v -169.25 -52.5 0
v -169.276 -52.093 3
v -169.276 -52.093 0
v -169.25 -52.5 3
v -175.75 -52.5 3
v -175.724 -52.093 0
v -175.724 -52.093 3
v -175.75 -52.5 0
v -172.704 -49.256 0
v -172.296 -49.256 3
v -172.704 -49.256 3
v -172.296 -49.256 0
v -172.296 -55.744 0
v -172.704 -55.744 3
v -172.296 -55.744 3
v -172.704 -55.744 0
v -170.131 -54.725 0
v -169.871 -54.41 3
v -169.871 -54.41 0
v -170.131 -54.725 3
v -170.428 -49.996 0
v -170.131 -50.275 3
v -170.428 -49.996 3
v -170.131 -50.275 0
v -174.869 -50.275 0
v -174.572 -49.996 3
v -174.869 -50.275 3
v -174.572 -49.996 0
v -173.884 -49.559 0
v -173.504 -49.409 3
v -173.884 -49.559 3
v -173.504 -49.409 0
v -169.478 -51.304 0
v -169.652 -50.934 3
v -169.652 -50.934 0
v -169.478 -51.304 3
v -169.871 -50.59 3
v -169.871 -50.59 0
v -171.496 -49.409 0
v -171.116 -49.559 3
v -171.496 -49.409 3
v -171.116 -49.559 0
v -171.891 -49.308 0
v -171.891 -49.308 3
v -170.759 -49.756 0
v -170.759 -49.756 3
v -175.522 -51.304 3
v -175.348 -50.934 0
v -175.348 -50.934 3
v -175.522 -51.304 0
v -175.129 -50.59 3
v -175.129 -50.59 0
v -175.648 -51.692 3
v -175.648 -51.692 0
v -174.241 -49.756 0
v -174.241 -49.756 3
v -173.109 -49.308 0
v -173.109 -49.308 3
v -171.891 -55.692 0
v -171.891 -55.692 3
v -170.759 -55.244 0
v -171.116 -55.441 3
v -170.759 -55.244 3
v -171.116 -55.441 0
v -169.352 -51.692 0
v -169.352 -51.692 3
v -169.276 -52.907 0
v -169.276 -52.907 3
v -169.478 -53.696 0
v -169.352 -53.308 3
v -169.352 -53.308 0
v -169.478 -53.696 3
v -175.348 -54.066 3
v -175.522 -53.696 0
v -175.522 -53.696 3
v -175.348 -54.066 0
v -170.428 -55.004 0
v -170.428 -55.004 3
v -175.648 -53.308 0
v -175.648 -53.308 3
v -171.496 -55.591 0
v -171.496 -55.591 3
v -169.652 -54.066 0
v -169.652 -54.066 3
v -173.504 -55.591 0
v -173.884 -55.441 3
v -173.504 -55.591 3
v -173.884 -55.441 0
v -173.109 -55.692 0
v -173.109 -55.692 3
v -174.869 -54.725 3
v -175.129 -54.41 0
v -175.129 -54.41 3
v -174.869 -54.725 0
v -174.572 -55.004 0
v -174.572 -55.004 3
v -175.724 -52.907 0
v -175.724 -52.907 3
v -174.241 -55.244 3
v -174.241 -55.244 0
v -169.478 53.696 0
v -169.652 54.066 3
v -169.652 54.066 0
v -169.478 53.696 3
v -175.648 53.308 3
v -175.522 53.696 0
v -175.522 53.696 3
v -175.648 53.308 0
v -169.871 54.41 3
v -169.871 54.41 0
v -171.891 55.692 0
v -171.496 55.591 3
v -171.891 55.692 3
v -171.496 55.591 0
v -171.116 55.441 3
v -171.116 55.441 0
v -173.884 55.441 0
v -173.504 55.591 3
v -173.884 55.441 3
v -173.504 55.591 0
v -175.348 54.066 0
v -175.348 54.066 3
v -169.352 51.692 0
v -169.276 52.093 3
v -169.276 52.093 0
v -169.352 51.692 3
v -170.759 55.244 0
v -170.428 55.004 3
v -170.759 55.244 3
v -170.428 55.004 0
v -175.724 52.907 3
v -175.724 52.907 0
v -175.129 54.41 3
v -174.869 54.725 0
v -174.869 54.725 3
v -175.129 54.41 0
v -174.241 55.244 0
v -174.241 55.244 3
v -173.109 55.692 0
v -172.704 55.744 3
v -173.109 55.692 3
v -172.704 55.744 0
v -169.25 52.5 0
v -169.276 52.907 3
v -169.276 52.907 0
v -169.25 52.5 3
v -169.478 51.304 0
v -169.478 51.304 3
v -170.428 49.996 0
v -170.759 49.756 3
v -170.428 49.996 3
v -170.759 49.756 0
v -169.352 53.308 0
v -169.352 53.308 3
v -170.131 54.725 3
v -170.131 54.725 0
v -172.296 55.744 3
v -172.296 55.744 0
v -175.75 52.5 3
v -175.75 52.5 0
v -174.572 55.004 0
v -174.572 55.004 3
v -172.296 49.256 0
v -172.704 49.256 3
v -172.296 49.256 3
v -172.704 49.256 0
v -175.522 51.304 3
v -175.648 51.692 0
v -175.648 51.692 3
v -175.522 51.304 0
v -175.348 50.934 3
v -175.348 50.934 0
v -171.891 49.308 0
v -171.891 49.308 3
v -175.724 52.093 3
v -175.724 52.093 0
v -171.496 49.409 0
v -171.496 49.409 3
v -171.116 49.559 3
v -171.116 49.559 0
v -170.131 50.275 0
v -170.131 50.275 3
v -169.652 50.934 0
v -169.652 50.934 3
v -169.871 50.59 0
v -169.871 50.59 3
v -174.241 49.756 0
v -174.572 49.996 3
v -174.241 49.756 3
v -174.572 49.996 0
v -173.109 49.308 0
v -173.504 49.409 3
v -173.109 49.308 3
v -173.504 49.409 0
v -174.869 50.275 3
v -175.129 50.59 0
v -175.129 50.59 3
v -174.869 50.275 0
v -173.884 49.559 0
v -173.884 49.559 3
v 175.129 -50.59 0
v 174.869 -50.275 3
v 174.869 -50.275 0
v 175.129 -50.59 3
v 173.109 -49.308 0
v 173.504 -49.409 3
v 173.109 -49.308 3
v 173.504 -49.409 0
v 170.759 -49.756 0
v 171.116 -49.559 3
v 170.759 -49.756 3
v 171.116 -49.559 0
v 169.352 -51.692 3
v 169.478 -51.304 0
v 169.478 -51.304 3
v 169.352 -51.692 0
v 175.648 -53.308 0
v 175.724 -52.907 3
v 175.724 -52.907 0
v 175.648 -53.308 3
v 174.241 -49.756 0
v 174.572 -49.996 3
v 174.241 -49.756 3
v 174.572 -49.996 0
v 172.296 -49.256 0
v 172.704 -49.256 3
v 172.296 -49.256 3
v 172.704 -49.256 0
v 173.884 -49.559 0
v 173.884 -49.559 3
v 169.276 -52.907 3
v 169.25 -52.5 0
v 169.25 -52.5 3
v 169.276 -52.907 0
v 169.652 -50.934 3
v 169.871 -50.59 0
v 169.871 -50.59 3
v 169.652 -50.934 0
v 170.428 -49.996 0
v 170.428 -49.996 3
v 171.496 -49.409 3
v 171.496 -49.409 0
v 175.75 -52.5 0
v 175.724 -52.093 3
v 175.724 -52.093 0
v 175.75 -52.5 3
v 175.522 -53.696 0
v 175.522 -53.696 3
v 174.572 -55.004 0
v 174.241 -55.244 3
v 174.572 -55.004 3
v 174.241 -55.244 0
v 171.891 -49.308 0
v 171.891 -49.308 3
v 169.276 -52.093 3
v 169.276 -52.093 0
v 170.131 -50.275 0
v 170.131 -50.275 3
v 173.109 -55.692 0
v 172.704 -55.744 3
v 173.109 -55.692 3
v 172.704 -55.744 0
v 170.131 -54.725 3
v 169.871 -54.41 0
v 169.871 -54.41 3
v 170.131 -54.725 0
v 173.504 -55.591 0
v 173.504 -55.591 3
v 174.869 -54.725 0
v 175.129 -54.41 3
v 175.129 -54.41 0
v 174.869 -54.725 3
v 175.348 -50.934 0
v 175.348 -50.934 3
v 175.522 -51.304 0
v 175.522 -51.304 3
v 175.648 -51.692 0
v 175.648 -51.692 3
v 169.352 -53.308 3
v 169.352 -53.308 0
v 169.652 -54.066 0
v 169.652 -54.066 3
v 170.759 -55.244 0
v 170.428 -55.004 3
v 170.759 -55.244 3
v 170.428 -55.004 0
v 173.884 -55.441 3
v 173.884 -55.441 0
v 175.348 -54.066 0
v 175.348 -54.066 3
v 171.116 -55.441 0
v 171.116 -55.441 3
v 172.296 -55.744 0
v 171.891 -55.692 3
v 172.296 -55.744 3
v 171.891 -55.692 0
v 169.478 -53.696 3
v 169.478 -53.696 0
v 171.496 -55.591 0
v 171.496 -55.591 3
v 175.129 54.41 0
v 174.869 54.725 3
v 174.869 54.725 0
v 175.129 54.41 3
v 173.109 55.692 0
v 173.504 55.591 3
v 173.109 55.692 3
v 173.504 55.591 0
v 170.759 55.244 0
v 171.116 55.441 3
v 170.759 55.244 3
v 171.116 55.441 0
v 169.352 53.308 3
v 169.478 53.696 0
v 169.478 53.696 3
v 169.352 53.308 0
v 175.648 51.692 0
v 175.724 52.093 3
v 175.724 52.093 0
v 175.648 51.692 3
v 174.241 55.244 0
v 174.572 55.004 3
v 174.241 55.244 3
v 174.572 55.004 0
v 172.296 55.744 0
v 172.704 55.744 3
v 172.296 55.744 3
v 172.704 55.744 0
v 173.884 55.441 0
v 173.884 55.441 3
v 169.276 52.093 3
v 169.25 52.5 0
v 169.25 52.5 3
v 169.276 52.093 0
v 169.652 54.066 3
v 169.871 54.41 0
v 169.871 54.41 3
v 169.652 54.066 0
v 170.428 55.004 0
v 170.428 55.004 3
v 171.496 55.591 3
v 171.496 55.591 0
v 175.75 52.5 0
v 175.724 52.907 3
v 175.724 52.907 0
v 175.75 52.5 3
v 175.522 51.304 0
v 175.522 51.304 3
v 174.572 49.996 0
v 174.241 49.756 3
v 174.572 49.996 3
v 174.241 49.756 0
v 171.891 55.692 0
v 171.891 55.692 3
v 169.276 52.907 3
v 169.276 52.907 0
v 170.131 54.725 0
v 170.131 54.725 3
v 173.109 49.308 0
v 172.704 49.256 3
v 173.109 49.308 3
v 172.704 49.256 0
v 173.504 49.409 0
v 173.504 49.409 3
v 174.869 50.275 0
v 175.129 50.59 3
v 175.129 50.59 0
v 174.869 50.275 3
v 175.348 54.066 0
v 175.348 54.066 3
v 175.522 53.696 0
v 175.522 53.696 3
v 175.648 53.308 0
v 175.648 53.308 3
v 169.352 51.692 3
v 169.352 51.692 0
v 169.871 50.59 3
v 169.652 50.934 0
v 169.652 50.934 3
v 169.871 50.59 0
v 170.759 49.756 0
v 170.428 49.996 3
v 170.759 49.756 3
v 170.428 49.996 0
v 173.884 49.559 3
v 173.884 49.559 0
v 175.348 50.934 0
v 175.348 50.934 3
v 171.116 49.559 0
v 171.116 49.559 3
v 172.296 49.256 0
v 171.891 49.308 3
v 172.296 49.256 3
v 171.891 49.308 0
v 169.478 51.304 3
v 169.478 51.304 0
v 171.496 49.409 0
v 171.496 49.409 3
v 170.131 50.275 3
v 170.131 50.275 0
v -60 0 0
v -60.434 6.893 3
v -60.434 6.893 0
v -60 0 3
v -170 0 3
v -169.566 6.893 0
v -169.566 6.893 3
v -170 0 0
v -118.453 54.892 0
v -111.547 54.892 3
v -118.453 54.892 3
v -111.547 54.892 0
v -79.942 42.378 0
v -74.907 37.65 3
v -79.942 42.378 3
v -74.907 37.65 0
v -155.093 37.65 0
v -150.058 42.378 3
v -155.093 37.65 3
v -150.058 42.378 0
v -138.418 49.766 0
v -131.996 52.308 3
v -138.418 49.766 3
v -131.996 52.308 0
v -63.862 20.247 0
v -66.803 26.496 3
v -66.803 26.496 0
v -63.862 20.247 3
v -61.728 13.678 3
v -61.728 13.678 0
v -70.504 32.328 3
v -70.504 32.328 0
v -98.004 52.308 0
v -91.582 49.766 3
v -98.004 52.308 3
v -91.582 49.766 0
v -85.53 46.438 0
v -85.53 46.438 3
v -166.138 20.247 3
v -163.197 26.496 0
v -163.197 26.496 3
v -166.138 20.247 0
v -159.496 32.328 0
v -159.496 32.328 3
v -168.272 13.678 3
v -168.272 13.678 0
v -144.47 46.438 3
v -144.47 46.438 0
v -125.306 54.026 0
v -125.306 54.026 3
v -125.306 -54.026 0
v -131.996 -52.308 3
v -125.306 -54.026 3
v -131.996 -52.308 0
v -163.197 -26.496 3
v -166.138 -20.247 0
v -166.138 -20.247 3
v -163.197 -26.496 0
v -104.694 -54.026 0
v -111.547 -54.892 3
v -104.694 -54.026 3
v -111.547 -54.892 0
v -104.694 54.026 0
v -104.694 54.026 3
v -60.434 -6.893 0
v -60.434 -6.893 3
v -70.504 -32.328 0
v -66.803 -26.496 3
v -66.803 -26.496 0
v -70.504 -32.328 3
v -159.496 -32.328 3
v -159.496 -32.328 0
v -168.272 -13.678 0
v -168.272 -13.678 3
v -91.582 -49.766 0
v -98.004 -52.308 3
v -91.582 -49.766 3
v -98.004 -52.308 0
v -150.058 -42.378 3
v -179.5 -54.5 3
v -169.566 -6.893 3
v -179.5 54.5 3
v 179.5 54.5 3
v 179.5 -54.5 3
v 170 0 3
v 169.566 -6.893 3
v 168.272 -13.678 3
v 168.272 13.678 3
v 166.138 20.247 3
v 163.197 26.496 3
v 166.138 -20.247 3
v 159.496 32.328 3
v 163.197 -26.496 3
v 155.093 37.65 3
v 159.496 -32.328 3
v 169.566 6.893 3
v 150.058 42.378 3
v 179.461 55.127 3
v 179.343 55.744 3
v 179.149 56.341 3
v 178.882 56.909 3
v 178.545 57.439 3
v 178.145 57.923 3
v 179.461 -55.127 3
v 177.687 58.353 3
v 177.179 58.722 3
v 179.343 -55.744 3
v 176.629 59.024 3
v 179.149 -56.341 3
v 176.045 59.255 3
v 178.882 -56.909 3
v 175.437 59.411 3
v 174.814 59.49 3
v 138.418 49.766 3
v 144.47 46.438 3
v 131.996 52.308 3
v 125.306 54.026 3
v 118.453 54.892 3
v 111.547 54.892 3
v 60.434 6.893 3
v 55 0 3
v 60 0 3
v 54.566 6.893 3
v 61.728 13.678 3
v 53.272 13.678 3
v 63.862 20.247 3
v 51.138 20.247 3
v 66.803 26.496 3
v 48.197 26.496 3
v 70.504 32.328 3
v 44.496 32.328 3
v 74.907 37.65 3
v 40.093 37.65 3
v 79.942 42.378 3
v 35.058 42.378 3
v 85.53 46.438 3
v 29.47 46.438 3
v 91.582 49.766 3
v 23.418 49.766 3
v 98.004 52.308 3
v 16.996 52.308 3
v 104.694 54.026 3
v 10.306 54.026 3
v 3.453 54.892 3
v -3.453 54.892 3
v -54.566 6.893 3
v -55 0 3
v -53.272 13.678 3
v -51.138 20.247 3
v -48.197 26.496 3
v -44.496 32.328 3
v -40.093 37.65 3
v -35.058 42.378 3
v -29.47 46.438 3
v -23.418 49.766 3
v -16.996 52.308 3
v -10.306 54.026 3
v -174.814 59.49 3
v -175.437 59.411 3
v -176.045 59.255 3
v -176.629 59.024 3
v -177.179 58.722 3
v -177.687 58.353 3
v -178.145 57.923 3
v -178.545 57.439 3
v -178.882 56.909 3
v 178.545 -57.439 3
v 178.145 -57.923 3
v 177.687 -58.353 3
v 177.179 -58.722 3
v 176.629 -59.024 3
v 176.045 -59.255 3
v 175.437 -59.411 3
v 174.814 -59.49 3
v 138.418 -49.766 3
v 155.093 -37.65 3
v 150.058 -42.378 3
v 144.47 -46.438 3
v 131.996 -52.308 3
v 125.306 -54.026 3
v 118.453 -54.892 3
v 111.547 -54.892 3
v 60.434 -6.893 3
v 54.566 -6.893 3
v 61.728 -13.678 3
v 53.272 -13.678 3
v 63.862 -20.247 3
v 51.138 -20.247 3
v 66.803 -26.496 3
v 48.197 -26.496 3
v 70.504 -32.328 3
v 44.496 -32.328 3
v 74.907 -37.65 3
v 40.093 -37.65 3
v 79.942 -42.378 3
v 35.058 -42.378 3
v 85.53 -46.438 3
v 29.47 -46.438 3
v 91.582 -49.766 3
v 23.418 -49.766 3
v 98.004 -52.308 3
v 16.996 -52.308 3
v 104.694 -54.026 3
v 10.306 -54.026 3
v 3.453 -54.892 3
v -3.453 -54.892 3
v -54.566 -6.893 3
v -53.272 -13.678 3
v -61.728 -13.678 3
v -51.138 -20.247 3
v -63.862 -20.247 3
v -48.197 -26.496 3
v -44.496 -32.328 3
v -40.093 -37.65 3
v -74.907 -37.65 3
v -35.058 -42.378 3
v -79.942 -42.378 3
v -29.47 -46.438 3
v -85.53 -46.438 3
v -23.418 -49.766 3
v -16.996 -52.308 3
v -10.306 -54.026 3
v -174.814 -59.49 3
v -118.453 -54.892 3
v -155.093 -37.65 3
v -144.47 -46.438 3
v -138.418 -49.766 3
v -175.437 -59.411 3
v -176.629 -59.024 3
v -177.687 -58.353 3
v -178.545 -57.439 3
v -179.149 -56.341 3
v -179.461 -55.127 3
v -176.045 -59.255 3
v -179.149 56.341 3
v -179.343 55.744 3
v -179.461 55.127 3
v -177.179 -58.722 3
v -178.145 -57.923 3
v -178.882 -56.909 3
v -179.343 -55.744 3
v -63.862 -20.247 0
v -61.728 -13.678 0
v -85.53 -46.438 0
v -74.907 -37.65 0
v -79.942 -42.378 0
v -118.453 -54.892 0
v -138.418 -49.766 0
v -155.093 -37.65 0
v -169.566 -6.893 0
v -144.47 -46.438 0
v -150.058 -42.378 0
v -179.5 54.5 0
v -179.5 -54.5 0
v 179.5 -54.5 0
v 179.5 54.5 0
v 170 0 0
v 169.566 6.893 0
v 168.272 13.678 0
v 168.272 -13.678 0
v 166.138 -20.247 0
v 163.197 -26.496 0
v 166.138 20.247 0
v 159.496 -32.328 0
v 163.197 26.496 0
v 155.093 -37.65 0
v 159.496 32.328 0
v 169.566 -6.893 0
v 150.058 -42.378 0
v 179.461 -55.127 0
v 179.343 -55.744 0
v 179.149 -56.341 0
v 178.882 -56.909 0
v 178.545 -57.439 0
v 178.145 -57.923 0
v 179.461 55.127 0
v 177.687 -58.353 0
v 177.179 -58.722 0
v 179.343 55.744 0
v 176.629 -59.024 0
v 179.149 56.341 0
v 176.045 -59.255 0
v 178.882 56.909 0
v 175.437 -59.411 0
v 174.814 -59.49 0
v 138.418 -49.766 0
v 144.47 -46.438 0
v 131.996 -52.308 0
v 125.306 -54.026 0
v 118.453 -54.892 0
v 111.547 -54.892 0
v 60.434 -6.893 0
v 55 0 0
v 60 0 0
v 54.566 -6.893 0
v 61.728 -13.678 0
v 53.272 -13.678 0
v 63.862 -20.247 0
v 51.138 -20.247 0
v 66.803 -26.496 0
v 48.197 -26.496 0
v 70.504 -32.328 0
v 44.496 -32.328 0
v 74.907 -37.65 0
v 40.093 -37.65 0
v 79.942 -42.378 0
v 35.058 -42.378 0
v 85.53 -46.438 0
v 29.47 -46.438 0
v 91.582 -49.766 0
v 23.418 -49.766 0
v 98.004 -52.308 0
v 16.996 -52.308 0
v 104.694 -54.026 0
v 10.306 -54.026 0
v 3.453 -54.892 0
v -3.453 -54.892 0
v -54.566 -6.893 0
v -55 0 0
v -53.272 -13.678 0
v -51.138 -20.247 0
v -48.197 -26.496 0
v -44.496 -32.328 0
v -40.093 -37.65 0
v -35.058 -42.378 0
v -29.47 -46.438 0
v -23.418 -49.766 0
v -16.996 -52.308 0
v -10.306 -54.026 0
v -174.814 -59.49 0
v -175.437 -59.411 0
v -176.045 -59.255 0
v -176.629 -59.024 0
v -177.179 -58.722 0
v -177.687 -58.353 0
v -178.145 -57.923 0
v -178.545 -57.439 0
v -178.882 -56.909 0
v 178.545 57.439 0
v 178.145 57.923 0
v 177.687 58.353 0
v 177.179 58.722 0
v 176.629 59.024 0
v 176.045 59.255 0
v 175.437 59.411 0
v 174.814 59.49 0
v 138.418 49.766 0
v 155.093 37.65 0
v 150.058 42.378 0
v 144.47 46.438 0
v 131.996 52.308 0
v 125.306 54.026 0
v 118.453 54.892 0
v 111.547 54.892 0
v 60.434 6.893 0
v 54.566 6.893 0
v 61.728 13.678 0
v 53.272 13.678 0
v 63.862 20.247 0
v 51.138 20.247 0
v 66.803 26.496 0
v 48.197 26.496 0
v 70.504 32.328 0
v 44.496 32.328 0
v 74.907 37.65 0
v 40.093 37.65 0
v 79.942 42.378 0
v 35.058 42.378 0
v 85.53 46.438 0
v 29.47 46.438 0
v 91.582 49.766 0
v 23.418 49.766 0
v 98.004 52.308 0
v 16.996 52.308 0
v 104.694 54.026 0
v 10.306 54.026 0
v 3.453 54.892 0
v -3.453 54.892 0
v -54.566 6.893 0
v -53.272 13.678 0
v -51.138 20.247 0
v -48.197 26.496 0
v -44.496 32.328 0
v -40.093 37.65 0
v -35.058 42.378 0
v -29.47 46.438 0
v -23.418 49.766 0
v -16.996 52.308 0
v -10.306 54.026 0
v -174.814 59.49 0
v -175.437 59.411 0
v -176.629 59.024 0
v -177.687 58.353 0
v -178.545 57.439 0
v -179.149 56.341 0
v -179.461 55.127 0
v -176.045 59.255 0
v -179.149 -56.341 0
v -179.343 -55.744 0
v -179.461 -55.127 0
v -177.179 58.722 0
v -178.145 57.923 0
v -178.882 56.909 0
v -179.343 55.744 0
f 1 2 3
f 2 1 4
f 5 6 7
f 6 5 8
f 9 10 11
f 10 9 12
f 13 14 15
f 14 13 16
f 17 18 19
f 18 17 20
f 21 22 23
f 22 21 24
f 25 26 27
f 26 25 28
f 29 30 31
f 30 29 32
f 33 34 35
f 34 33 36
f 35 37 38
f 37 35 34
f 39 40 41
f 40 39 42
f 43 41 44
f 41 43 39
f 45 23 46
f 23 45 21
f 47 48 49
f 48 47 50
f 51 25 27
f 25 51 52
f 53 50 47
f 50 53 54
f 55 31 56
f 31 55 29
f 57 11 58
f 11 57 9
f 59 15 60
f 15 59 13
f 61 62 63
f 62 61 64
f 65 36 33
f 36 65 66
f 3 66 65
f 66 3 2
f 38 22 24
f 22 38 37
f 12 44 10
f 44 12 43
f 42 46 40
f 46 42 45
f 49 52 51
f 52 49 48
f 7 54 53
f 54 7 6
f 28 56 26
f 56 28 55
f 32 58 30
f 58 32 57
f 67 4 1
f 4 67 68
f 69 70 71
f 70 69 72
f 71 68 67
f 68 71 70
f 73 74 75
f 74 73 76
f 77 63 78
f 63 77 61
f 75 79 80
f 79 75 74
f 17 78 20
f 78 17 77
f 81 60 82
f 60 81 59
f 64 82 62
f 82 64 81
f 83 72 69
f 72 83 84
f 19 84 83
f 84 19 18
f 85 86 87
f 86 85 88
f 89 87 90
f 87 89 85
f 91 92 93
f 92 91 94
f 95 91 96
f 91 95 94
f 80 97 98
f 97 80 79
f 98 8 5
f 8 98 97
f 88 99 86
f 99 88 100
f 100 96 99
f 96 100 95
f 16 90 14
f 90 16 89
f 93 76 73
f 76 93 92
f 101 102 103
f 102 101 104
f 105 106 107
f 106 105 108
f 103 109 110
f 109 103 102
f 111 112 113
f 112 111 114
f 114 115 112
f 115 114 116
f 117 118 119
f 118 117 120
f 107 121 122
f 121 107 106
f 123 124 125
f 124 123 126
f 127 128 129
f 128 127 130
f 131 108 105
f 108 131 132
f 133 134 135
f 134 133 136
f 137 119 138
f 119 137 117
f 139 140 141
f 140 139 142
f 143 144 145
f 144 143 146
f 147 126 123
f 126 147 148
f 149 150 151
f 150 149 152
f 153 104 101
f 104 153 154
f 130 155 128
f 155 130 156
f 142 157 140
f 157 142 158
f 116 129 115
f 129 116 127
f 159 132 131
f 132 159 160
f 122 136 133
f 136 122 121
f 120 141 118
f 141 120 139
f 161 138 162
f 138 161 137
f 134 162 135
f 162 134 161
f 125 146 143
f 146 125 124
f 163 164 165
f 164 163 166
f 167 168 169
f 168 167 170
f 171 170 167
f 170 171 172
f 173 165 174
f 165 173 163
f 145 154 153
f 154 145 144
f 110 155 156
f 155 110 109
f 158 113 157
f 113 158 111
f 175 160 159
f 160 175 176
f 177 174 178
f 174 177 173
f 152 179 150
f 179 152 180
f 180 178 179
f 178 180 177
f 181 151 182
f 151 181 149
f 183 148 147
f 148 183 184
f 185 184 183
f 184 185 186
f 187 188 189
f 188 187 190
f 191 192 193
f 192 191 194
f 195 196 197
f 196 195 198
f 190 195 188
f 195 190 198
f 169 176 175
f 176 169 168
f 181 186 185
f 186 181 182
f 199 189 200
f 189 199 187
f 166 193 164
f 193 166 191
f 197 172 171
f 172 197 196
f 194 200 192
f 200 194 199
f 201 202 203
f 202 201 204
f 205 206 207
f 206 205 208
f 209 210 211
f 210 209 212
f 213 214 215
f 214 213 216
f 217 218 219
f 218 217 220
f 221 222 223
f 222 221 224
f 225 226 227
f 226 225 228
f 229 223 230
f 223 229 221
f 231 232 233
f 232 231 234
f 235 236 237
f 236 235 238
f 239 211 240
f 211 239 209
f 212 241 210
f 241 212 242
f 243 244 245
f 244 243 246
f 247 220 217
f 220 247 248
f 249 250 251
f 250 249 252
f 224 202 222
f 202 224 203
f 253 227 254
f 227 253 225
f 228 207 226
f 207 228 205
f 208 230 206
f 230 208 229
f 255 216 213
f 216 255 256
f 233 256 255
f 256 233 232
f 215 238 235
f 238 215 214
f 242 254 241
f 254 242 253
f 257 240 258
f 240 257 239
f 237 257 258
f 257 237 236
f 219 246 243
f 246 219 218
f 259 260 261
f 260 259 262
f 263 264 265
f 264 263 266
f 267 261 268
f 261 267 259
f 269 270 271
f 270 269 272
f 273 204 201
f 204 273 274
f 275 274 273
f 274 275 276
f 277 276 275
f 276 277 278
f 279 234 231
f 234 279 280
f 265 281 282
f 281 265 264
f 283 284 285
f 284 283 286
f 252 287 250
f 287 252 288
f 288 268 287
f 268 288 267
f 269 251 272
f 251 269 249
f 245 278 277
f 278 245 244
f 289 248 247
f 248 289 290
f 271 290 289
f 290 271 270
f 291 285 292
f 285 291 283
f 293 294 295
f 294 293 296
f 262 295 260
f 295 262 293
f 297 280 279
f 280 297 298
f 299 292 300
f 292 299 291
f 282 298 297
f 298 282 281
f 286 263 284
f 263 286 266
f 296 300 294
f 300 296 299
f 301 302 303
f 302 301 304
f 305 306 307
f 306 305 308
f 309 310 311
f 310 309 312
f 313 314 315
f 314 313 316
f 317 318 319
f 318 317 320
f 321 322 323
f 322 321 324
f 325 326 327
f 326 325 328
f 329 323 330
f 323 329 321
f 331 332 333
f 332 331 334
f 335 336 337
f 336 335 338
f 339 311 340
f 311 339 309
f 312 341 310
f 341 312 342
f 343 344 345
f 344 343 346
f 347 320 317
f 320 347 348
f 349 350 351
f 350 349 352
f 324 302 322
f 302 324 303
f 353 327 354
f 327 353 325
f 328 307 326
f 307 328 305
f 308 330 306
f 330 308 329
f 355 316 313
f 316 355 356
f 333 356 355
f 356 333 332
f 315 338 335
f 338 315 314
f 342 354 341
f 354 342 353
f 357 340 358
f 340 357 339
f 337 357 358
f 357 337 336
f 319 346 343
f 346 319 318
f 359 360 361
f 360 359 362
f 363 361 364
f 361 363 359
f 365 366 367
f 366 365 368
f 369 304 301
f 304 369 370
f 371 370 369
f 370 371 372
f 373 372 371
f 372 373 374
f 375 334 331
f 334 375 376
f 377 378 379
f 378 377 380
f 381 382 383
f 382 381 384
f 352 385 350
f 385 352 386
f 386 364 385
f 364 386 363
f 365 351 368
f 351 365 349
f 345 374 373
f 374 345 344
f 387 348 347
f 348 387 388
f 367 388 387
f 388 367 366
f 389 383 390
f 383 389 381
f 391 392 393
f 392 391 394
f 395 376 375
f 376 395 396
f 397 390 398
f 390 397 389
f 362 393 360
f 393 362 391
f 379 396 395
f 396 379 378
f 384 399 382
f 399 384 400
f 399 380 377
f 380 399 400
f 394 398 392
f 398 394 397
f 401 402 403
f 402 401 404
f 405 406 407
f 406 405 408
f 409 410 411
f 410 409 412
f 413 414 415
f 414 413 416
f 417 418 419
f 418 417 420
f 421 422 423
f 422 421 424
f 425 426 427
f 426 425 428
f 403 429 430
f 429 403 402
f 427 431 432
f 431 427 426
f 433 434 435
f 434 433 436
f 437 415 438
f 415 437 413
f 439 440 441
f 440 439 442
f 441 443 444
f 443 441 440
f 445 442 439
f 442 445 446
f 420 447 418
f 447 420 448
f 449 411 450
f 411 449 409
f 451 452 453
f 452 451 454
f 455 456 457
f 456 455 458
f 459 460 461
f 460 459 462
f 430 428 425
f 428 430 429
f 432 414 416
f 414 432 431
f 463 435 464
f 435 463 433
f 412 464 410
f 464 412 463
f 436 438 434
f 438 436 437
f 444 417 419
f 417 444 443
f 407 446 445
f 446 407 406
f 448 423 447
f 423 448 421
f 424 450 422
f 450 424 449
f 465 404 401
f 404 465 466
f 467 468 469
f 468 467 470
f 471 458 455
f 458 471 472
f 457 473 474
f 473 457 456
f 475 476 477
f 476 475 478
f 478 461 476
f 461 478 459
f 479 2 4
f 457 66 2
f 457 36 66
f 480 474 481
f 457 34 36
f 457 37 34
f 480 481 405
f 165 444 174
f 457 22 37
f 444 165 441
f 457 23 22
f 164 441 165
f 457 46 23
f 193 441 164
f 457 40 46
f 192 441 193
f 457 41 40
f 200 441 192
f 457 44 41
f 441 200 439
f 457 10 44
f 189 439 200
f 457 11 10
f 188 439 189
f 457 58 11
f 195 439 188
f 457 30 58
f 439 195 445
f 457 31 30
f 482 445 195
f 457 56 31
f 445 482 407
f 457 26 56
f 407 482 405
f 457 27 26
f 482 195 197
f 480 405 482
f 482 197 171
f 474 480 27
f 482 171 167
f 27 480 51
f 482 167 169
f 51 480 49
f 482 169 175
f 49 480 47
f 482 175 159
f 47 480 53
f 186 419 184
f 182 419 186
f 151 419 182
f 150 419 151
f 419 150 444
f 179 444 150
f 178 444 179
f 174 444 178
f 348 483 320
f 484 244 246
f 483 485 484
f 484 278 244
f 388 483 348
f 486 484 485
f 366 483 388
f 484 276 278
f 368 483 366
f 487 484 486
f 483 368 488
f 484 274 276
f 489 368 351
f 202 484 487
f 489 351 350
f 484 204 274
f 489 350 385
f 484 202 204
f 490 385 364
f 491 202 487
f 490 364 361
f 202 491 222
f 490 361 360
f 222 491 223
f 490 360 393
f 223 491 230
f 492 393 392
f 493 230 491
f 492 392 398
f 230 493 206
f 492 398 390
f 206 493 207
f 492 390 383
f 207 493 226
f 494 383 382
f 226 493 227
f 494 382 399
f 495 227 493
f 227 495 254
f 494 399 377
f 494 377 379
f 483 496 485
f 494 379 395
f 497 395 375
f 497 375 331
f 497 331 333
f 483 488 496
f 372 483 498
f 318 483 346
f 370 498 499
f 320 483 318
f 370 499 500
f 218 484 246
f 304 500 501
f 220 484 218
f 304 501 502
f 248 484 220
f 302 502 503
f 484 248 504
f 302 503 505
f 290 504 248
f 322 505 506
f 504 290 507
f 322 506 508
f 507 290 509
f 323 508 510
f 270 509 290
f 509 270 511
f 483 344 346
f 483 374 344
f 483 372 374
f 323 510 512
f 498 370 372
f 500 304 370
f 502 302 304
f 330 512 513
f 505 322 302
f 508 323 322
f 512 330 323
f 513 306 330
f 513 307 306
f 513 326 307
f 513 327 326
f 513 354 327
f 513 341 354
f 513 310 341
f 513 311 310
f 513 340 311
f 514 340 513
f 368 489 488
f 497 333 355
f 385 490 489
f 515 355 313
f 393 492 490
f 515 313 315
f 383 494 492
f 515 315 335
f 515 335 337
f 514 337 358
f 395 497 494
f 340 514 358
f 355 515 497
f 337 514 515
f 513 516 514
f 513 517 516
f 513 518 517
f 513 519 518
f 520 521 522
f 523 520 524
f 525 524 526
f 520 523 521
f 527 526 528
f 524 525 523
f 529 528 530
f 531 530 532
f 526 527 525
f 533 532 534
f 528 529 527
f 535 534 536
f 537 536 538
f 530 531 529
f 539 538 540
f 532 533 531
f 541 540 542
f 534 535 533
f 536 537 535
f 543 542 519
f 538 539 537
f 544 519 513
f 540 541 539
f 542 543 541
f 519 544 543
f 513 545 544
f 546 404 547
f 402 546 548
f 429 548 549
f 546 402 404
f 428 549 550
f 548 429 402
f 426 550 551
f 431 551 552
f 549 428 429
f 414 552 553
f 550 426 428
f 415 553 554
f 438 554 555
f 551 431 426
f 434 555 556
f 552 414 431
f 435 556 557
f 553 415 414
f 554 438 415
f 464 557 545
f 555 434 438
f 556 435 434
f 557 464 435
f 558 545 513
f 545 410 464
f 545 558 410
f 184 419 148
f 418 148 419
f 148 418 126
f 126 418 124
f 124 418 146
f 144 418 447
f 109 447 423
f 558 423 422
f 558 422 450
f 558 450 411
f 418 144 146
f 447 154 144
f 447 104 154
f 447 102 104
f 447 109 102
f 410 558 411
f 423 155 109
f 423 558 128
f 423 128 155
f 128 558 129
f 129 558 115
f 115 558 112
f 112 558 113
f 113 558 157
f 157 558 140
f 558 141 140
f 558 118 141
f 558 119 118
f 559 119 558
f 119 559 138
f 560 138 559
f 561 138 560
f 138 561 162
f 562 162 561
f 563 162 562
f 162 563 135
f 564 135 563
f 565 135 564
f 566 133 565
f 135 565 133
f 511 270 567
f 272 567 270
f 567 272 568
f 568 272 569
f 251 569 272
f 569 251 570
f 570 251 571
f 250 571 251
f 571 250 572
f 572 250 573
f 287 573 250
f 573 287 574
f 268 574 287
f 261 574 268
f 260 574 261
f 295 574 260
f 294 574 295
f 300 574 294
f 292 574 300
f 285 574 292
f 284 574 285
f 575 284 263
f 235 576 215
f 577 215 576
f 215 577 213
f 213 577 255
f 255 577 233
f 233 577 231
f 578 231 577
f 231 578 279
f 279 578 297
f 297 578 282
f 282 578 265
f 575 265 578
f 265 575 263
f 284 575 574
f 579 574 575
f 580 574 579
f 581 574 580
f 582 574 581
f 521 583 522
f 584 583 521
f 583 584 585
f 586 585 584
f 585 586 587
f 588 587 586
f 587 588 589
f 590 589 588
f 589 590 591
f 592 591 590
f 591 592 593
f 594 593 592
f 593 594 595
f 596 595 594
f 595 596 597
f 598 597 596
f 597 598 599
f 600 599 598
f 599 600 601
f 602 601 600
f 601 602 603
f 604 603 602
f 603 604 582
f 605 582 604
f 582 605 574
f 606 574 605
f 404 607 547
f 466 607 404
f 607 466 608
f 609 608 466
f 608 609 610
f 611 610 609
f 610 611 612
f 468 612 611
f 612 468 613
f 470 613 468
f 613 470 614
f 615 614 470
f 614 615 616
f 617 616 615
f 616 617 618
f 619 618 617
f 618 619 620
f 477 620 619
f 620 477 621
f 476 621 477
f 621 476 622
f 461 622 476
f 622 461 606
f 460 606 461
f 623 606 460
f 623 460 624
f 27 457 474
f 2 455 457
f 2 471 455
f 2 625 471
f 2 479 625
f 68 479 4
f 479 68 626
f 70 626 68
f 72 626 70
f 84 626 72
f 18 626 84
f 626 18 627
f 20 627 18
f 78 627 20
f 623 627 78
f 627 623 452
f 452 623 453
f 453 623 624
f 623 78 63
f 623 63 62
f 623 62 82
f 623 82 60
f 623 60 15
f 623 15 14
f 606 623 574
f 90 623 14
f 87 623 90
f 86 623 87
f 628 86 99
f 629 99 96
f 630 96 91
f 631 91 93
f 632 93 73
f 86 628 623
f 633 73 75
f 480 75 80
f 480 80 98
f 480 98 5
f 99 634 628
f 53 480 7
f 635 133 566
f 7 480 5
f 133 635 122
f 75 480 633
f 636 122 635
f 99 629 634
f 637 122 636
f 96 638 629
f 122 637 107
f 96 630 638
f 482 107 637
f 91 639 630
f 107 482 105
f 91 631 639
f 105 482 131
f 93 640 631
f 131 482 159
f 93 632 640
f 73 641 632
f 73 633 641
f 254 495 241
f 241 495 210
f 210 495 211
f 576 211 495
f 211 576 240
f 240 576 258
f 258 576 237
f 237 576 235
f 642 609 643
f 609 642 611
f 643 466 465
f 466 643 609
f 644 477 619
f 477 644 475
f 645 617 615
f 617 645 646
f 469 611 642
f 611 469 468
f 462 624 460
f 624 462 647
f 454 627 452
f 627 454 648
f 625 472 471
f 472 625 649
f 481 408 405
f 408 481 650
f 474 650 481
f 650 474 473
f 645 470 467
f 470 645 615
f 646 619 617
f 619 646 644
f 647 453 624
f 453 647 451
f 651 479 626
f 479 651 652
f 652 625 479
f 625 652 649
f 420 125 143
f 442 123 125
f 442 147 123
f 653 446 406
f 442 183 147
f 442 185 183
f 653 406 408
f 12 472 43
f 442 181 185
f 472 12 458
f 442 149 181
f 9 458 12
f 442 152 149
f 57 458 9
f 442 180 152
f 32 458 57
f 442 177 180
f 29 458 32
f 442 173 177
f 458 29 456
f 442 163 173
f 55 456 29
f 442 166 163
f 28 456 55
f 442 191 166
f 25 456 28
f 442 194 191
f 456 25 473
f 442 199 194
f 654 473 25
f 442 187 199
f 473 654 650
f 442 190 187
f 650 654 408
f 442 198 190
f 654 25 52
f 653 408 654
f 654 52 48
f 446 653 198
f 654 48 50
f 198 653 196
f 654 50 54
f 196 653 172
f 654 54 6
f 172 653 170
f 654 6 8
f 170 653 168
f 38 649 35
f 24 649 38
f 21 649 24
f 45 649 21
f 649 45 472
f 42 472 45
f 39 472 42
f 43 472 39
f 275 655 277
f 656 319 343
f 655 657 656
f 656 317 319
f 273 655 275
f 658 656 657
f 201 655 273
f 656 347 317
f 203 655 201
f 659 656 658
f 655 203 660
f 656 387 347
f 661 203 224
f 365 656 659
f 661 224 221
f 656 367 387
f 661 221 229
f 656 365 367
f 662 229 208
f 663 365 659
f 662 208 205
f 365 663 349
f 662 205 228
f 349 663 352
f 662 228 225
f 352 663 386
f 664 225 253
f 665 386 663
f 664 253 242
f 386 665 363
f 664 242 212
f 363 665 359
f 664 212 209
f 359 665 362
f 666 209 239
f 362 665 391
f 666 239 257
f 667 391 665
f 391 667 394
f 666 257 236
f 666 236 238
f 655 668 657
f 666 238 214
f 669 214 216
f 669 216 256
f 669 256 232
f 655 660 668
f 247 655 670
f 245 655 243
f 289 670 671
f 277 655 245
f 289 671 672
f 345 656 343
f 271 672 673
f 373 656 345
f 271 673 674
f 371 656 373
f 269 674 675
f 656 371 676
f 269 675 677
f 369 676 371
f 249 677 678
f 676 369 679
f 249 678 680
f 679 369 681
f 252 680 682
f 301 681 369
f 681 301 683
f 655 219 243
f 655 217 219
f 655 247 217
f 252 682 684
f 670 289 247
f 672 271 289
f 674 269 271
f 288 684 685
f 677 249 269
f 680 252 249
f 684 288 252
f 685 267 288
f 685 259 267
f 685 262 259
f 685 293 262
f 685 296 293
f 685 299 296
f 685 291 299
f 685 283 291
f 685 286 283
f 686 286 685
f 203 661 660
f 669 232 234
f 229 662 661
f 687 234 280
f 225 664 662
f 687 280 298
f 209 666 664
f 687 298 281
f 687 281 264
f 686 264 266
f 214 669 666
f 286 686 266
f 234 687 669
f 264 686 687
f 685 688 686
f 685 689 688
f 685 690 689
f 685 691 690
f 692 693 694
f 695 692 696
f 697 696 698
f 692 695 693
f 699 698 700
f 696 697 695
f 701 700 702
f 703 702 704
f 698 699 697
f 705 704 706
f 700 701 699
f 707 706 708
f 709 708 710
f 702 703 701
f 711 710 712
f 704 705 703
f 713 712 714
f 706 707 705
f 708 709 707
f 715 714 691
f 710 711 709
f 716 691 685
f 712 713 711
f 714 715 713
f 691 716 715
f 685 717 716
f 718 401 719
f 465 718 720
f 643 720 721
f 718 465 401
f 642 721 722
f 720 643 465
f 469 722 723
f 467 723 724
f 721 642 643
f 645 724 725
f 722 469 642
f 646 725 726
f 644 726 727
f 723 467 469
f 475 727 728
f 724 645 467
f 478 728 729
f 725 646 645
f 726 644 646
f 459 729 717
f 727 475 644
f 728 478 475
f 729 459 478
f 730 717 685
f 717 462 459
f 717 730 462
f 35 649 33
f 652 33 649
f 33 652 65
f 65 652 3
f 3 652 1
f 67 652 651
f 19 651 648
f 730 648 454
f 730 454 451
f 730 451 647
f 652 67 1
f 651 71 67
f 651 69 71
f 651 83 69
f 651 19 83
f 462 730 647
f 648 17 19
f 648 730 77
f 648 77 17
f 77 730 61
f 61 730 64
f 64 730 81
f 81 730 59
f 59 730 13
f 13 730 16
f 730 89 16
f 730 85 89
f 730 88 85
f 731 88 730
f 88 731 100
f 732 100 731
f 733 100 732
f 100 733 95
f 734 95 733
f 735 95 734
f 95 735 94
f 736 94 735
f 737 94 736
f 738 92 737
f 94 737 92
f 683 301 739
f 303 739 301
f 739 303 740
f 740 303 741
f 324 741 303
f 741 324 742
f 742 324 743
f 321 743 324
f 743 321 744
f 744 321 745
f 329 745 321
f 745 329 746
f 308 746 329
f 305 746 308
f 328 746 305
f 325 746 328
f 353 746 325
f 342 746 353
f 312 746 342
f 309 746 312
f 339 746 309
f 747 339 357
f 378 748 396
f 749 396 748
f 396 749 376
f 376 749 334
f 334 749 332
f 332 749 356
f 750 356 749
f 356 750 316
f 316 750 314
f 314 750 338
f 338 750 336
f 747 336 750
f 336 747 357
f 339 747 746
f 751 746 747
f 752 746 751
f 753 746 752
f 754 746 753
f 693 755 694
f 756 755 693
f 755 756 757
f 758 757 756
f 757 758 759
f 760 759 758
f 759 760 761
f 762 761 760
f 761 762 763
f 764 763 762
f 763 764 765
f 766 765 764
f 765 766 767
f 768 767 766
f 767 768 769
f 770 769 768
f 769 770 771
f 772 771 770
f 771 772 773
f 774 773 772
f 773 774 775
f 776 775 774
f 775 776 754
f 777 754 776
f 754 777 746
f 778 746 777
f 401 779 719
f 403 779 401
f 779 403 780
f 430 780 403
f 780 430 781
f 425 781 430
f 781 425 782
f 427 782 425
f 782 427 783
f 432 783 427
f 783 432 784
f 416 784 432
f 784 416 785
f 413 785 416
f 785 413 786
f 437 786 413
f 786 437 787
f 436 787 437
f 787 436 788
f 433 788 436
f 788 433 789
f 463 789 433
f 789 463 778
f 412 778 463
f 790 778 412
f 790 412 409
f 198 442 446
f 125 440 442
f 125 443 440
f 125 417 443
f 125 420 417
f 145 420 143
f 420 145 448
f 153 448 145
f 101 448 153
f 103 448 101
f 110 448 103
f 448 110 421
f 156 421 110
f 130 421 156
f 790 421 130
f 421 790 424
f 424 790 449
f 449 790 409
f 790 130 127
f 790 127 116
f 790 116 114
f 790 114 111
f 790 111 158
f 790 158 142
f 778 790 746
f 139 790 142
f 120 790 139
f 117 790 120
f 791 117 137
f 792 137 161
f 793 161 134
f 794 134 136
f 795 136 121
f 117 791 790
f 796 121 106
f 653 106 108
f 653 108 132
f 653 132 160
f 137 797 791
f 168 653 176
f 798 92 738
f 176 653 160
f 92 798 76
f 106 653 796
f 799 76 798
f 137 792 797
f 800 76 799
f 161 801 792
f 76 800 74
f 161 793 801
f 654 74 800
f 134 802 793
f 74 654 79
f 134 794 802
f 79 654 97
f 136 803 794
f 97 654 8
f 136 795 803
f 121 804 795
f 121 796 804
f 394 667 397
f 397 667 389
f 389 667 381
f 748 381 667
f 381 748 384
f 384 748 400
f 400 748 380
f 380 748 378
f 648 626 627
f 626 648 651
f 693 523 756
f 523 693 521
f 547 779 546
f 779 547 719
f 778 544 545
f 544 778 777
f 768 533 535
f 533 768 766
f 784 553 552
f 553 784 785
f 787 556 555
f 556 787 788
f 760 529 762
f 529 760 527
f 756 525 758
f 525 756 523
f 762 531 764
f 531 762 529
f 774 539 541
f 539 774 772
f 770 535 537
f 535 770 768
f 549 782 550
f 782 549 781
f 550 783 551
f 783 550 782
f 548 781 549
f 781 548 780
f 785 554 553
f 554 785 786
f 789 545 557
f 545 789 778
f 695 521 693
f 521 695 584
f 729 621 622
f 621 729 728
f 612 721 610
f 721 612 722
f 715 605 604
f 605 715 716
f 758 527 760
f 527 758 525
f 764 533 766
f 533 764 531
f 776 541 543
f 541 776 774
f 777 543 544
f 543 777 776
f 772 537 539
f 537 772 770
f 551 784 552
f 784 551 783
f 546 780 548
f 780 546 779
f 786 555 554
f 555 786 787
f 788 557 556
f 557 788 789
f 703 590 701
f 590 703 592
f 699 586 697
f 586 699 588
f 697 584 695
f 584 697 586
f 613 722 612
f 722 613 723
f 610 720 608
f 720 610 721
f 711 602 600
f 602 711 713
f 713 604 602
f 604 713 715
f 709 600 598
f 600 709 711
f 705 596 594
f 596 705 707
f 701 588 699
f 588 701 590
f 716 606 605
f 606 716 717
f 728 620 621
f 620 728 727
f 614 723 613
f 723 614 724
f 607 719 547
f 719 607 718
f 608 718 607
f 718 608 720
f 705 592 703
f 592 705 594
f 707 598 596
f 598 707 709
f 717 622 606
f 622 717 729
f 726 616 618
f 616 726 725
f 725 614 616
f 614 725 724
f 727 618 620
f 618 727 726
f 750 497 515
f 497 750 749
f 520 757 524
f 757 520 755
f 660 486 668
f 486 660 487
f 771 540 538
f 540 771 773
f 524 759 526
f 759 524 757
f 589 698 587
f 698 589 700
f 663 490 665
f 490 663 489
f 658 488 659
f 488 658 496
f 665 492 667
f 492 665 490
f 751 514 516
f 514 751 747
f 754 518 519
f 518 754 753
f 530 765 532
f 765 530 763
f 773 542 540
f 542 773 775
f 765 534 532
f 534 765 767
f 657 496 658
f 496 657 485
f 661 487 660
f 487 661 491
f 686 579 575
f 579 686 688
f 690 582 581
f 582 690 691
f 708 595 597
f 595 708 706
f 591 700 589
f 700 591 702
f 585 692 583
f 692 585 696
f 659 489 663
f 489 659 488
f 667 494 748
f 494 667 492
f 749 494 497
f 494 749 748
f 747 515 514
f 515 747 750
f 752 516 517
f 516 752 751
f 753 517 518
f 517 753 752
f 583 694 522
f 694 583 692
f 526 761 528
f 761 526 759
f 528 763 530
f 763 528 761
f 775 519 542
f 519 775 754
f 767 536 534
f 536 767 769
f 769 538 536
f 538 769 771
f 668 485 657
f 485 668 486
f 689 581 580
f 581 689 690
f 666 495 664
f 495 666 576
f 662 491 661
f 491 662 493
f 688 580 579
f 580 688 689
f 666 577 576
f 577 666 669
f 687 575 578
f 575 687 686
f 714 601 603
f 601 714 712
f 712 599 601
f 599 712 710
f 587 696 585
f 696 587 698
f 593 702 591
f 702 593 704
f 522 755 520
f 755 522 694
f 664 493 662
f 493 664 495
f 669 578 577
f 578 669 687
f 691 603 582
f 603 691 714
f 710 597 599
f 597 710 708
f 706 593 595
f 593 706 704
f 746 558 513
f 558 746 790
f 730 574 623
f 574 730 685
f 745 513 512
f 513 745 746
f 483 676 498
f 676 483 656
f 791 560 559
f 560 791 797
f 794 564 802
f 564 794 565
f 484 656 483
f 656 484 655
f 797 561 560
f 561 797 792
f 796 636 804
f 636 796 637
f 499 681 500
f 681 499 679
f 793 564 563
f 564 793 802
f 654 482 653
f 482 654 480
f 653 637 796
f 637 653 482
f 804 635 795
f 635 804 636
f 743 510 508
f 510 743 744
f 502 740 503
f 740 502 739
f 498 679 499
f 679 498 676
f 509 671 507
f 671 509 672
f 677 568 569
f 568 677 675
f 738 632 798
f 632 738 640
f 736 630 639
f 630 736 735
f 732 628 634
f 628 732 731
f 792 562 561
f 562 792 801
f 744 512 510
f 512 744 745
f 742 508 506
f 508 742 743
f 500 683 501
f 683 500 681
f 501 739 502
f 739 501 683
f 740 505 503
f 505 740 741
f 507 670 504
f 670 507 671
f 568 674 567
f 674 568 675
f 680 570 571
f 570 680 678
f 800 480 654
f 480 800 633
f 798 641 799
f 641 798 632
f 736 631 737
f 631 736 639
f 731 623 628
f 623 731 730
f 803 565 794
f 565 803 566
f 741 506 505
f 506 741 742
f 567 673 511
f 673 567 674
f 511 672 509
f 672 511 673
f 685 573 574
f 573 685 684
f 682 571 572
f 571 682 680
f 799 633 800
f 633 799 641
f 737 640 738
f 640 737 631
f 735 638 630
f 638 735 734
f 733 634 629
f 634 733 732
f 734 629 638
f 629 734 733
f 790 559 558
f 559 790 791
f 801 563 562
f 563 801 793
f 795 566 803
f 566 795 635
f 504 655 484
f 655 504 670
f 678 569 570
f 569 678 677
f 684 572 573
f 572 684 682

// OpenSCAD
$fn = 50;


difference() {
	union() {
		hull() {
			translate(v = [-174.5000000000, 54.5000000000, 0]) {
				cylinder(h = 3, r = 5);
			}
			translate(v = [174.5000000000, 54.5000000000, 0]) {
				cylinder(h = 3, r = 5);
			}
			translate(v = [-174.5000000000, -54.5000000000, 0]) {
				cylinder(h = 3, r = 5);
			}
			translate(v = [174.5000000000, -54.5000000000, 0]) {
				cylinder(h = 3, r = 5);
			}
		}
	}
	union() {
		#translate(v = [-172.5000000000, -52.5000000000, -100.0000000000]) {
			cylinder(h = 200, r = 3.2500000000);
		}
		#translate(v = [-172.5000000000, 52.5000000000, -100.0000000000]) {
			cylinder(h = 200, r = 3.2500000000);
		}
		#translate(v = [172.5000000000, -52.5000000000, -100.0000000000]) {
			cylinder(h = 200, r = 3.2500000000);
		}
		#translate(v = [172.5000000000, 52.5000000000, -100.0000000000]) {
			cylinder(h = 200, r = 3.2500000000);
		}
		#translate(v = [-115.0000000000, 0, 0]) {
			cylinder(h = 3, r = 55.0000000000);
		}
		#cylinder(h = 3, r = 55.0000000000);
		#translate(v = [115.0000000000, 0, 0]) {
			cylinder(h = 3, r = 55.0000000000);
		}
	}
}
